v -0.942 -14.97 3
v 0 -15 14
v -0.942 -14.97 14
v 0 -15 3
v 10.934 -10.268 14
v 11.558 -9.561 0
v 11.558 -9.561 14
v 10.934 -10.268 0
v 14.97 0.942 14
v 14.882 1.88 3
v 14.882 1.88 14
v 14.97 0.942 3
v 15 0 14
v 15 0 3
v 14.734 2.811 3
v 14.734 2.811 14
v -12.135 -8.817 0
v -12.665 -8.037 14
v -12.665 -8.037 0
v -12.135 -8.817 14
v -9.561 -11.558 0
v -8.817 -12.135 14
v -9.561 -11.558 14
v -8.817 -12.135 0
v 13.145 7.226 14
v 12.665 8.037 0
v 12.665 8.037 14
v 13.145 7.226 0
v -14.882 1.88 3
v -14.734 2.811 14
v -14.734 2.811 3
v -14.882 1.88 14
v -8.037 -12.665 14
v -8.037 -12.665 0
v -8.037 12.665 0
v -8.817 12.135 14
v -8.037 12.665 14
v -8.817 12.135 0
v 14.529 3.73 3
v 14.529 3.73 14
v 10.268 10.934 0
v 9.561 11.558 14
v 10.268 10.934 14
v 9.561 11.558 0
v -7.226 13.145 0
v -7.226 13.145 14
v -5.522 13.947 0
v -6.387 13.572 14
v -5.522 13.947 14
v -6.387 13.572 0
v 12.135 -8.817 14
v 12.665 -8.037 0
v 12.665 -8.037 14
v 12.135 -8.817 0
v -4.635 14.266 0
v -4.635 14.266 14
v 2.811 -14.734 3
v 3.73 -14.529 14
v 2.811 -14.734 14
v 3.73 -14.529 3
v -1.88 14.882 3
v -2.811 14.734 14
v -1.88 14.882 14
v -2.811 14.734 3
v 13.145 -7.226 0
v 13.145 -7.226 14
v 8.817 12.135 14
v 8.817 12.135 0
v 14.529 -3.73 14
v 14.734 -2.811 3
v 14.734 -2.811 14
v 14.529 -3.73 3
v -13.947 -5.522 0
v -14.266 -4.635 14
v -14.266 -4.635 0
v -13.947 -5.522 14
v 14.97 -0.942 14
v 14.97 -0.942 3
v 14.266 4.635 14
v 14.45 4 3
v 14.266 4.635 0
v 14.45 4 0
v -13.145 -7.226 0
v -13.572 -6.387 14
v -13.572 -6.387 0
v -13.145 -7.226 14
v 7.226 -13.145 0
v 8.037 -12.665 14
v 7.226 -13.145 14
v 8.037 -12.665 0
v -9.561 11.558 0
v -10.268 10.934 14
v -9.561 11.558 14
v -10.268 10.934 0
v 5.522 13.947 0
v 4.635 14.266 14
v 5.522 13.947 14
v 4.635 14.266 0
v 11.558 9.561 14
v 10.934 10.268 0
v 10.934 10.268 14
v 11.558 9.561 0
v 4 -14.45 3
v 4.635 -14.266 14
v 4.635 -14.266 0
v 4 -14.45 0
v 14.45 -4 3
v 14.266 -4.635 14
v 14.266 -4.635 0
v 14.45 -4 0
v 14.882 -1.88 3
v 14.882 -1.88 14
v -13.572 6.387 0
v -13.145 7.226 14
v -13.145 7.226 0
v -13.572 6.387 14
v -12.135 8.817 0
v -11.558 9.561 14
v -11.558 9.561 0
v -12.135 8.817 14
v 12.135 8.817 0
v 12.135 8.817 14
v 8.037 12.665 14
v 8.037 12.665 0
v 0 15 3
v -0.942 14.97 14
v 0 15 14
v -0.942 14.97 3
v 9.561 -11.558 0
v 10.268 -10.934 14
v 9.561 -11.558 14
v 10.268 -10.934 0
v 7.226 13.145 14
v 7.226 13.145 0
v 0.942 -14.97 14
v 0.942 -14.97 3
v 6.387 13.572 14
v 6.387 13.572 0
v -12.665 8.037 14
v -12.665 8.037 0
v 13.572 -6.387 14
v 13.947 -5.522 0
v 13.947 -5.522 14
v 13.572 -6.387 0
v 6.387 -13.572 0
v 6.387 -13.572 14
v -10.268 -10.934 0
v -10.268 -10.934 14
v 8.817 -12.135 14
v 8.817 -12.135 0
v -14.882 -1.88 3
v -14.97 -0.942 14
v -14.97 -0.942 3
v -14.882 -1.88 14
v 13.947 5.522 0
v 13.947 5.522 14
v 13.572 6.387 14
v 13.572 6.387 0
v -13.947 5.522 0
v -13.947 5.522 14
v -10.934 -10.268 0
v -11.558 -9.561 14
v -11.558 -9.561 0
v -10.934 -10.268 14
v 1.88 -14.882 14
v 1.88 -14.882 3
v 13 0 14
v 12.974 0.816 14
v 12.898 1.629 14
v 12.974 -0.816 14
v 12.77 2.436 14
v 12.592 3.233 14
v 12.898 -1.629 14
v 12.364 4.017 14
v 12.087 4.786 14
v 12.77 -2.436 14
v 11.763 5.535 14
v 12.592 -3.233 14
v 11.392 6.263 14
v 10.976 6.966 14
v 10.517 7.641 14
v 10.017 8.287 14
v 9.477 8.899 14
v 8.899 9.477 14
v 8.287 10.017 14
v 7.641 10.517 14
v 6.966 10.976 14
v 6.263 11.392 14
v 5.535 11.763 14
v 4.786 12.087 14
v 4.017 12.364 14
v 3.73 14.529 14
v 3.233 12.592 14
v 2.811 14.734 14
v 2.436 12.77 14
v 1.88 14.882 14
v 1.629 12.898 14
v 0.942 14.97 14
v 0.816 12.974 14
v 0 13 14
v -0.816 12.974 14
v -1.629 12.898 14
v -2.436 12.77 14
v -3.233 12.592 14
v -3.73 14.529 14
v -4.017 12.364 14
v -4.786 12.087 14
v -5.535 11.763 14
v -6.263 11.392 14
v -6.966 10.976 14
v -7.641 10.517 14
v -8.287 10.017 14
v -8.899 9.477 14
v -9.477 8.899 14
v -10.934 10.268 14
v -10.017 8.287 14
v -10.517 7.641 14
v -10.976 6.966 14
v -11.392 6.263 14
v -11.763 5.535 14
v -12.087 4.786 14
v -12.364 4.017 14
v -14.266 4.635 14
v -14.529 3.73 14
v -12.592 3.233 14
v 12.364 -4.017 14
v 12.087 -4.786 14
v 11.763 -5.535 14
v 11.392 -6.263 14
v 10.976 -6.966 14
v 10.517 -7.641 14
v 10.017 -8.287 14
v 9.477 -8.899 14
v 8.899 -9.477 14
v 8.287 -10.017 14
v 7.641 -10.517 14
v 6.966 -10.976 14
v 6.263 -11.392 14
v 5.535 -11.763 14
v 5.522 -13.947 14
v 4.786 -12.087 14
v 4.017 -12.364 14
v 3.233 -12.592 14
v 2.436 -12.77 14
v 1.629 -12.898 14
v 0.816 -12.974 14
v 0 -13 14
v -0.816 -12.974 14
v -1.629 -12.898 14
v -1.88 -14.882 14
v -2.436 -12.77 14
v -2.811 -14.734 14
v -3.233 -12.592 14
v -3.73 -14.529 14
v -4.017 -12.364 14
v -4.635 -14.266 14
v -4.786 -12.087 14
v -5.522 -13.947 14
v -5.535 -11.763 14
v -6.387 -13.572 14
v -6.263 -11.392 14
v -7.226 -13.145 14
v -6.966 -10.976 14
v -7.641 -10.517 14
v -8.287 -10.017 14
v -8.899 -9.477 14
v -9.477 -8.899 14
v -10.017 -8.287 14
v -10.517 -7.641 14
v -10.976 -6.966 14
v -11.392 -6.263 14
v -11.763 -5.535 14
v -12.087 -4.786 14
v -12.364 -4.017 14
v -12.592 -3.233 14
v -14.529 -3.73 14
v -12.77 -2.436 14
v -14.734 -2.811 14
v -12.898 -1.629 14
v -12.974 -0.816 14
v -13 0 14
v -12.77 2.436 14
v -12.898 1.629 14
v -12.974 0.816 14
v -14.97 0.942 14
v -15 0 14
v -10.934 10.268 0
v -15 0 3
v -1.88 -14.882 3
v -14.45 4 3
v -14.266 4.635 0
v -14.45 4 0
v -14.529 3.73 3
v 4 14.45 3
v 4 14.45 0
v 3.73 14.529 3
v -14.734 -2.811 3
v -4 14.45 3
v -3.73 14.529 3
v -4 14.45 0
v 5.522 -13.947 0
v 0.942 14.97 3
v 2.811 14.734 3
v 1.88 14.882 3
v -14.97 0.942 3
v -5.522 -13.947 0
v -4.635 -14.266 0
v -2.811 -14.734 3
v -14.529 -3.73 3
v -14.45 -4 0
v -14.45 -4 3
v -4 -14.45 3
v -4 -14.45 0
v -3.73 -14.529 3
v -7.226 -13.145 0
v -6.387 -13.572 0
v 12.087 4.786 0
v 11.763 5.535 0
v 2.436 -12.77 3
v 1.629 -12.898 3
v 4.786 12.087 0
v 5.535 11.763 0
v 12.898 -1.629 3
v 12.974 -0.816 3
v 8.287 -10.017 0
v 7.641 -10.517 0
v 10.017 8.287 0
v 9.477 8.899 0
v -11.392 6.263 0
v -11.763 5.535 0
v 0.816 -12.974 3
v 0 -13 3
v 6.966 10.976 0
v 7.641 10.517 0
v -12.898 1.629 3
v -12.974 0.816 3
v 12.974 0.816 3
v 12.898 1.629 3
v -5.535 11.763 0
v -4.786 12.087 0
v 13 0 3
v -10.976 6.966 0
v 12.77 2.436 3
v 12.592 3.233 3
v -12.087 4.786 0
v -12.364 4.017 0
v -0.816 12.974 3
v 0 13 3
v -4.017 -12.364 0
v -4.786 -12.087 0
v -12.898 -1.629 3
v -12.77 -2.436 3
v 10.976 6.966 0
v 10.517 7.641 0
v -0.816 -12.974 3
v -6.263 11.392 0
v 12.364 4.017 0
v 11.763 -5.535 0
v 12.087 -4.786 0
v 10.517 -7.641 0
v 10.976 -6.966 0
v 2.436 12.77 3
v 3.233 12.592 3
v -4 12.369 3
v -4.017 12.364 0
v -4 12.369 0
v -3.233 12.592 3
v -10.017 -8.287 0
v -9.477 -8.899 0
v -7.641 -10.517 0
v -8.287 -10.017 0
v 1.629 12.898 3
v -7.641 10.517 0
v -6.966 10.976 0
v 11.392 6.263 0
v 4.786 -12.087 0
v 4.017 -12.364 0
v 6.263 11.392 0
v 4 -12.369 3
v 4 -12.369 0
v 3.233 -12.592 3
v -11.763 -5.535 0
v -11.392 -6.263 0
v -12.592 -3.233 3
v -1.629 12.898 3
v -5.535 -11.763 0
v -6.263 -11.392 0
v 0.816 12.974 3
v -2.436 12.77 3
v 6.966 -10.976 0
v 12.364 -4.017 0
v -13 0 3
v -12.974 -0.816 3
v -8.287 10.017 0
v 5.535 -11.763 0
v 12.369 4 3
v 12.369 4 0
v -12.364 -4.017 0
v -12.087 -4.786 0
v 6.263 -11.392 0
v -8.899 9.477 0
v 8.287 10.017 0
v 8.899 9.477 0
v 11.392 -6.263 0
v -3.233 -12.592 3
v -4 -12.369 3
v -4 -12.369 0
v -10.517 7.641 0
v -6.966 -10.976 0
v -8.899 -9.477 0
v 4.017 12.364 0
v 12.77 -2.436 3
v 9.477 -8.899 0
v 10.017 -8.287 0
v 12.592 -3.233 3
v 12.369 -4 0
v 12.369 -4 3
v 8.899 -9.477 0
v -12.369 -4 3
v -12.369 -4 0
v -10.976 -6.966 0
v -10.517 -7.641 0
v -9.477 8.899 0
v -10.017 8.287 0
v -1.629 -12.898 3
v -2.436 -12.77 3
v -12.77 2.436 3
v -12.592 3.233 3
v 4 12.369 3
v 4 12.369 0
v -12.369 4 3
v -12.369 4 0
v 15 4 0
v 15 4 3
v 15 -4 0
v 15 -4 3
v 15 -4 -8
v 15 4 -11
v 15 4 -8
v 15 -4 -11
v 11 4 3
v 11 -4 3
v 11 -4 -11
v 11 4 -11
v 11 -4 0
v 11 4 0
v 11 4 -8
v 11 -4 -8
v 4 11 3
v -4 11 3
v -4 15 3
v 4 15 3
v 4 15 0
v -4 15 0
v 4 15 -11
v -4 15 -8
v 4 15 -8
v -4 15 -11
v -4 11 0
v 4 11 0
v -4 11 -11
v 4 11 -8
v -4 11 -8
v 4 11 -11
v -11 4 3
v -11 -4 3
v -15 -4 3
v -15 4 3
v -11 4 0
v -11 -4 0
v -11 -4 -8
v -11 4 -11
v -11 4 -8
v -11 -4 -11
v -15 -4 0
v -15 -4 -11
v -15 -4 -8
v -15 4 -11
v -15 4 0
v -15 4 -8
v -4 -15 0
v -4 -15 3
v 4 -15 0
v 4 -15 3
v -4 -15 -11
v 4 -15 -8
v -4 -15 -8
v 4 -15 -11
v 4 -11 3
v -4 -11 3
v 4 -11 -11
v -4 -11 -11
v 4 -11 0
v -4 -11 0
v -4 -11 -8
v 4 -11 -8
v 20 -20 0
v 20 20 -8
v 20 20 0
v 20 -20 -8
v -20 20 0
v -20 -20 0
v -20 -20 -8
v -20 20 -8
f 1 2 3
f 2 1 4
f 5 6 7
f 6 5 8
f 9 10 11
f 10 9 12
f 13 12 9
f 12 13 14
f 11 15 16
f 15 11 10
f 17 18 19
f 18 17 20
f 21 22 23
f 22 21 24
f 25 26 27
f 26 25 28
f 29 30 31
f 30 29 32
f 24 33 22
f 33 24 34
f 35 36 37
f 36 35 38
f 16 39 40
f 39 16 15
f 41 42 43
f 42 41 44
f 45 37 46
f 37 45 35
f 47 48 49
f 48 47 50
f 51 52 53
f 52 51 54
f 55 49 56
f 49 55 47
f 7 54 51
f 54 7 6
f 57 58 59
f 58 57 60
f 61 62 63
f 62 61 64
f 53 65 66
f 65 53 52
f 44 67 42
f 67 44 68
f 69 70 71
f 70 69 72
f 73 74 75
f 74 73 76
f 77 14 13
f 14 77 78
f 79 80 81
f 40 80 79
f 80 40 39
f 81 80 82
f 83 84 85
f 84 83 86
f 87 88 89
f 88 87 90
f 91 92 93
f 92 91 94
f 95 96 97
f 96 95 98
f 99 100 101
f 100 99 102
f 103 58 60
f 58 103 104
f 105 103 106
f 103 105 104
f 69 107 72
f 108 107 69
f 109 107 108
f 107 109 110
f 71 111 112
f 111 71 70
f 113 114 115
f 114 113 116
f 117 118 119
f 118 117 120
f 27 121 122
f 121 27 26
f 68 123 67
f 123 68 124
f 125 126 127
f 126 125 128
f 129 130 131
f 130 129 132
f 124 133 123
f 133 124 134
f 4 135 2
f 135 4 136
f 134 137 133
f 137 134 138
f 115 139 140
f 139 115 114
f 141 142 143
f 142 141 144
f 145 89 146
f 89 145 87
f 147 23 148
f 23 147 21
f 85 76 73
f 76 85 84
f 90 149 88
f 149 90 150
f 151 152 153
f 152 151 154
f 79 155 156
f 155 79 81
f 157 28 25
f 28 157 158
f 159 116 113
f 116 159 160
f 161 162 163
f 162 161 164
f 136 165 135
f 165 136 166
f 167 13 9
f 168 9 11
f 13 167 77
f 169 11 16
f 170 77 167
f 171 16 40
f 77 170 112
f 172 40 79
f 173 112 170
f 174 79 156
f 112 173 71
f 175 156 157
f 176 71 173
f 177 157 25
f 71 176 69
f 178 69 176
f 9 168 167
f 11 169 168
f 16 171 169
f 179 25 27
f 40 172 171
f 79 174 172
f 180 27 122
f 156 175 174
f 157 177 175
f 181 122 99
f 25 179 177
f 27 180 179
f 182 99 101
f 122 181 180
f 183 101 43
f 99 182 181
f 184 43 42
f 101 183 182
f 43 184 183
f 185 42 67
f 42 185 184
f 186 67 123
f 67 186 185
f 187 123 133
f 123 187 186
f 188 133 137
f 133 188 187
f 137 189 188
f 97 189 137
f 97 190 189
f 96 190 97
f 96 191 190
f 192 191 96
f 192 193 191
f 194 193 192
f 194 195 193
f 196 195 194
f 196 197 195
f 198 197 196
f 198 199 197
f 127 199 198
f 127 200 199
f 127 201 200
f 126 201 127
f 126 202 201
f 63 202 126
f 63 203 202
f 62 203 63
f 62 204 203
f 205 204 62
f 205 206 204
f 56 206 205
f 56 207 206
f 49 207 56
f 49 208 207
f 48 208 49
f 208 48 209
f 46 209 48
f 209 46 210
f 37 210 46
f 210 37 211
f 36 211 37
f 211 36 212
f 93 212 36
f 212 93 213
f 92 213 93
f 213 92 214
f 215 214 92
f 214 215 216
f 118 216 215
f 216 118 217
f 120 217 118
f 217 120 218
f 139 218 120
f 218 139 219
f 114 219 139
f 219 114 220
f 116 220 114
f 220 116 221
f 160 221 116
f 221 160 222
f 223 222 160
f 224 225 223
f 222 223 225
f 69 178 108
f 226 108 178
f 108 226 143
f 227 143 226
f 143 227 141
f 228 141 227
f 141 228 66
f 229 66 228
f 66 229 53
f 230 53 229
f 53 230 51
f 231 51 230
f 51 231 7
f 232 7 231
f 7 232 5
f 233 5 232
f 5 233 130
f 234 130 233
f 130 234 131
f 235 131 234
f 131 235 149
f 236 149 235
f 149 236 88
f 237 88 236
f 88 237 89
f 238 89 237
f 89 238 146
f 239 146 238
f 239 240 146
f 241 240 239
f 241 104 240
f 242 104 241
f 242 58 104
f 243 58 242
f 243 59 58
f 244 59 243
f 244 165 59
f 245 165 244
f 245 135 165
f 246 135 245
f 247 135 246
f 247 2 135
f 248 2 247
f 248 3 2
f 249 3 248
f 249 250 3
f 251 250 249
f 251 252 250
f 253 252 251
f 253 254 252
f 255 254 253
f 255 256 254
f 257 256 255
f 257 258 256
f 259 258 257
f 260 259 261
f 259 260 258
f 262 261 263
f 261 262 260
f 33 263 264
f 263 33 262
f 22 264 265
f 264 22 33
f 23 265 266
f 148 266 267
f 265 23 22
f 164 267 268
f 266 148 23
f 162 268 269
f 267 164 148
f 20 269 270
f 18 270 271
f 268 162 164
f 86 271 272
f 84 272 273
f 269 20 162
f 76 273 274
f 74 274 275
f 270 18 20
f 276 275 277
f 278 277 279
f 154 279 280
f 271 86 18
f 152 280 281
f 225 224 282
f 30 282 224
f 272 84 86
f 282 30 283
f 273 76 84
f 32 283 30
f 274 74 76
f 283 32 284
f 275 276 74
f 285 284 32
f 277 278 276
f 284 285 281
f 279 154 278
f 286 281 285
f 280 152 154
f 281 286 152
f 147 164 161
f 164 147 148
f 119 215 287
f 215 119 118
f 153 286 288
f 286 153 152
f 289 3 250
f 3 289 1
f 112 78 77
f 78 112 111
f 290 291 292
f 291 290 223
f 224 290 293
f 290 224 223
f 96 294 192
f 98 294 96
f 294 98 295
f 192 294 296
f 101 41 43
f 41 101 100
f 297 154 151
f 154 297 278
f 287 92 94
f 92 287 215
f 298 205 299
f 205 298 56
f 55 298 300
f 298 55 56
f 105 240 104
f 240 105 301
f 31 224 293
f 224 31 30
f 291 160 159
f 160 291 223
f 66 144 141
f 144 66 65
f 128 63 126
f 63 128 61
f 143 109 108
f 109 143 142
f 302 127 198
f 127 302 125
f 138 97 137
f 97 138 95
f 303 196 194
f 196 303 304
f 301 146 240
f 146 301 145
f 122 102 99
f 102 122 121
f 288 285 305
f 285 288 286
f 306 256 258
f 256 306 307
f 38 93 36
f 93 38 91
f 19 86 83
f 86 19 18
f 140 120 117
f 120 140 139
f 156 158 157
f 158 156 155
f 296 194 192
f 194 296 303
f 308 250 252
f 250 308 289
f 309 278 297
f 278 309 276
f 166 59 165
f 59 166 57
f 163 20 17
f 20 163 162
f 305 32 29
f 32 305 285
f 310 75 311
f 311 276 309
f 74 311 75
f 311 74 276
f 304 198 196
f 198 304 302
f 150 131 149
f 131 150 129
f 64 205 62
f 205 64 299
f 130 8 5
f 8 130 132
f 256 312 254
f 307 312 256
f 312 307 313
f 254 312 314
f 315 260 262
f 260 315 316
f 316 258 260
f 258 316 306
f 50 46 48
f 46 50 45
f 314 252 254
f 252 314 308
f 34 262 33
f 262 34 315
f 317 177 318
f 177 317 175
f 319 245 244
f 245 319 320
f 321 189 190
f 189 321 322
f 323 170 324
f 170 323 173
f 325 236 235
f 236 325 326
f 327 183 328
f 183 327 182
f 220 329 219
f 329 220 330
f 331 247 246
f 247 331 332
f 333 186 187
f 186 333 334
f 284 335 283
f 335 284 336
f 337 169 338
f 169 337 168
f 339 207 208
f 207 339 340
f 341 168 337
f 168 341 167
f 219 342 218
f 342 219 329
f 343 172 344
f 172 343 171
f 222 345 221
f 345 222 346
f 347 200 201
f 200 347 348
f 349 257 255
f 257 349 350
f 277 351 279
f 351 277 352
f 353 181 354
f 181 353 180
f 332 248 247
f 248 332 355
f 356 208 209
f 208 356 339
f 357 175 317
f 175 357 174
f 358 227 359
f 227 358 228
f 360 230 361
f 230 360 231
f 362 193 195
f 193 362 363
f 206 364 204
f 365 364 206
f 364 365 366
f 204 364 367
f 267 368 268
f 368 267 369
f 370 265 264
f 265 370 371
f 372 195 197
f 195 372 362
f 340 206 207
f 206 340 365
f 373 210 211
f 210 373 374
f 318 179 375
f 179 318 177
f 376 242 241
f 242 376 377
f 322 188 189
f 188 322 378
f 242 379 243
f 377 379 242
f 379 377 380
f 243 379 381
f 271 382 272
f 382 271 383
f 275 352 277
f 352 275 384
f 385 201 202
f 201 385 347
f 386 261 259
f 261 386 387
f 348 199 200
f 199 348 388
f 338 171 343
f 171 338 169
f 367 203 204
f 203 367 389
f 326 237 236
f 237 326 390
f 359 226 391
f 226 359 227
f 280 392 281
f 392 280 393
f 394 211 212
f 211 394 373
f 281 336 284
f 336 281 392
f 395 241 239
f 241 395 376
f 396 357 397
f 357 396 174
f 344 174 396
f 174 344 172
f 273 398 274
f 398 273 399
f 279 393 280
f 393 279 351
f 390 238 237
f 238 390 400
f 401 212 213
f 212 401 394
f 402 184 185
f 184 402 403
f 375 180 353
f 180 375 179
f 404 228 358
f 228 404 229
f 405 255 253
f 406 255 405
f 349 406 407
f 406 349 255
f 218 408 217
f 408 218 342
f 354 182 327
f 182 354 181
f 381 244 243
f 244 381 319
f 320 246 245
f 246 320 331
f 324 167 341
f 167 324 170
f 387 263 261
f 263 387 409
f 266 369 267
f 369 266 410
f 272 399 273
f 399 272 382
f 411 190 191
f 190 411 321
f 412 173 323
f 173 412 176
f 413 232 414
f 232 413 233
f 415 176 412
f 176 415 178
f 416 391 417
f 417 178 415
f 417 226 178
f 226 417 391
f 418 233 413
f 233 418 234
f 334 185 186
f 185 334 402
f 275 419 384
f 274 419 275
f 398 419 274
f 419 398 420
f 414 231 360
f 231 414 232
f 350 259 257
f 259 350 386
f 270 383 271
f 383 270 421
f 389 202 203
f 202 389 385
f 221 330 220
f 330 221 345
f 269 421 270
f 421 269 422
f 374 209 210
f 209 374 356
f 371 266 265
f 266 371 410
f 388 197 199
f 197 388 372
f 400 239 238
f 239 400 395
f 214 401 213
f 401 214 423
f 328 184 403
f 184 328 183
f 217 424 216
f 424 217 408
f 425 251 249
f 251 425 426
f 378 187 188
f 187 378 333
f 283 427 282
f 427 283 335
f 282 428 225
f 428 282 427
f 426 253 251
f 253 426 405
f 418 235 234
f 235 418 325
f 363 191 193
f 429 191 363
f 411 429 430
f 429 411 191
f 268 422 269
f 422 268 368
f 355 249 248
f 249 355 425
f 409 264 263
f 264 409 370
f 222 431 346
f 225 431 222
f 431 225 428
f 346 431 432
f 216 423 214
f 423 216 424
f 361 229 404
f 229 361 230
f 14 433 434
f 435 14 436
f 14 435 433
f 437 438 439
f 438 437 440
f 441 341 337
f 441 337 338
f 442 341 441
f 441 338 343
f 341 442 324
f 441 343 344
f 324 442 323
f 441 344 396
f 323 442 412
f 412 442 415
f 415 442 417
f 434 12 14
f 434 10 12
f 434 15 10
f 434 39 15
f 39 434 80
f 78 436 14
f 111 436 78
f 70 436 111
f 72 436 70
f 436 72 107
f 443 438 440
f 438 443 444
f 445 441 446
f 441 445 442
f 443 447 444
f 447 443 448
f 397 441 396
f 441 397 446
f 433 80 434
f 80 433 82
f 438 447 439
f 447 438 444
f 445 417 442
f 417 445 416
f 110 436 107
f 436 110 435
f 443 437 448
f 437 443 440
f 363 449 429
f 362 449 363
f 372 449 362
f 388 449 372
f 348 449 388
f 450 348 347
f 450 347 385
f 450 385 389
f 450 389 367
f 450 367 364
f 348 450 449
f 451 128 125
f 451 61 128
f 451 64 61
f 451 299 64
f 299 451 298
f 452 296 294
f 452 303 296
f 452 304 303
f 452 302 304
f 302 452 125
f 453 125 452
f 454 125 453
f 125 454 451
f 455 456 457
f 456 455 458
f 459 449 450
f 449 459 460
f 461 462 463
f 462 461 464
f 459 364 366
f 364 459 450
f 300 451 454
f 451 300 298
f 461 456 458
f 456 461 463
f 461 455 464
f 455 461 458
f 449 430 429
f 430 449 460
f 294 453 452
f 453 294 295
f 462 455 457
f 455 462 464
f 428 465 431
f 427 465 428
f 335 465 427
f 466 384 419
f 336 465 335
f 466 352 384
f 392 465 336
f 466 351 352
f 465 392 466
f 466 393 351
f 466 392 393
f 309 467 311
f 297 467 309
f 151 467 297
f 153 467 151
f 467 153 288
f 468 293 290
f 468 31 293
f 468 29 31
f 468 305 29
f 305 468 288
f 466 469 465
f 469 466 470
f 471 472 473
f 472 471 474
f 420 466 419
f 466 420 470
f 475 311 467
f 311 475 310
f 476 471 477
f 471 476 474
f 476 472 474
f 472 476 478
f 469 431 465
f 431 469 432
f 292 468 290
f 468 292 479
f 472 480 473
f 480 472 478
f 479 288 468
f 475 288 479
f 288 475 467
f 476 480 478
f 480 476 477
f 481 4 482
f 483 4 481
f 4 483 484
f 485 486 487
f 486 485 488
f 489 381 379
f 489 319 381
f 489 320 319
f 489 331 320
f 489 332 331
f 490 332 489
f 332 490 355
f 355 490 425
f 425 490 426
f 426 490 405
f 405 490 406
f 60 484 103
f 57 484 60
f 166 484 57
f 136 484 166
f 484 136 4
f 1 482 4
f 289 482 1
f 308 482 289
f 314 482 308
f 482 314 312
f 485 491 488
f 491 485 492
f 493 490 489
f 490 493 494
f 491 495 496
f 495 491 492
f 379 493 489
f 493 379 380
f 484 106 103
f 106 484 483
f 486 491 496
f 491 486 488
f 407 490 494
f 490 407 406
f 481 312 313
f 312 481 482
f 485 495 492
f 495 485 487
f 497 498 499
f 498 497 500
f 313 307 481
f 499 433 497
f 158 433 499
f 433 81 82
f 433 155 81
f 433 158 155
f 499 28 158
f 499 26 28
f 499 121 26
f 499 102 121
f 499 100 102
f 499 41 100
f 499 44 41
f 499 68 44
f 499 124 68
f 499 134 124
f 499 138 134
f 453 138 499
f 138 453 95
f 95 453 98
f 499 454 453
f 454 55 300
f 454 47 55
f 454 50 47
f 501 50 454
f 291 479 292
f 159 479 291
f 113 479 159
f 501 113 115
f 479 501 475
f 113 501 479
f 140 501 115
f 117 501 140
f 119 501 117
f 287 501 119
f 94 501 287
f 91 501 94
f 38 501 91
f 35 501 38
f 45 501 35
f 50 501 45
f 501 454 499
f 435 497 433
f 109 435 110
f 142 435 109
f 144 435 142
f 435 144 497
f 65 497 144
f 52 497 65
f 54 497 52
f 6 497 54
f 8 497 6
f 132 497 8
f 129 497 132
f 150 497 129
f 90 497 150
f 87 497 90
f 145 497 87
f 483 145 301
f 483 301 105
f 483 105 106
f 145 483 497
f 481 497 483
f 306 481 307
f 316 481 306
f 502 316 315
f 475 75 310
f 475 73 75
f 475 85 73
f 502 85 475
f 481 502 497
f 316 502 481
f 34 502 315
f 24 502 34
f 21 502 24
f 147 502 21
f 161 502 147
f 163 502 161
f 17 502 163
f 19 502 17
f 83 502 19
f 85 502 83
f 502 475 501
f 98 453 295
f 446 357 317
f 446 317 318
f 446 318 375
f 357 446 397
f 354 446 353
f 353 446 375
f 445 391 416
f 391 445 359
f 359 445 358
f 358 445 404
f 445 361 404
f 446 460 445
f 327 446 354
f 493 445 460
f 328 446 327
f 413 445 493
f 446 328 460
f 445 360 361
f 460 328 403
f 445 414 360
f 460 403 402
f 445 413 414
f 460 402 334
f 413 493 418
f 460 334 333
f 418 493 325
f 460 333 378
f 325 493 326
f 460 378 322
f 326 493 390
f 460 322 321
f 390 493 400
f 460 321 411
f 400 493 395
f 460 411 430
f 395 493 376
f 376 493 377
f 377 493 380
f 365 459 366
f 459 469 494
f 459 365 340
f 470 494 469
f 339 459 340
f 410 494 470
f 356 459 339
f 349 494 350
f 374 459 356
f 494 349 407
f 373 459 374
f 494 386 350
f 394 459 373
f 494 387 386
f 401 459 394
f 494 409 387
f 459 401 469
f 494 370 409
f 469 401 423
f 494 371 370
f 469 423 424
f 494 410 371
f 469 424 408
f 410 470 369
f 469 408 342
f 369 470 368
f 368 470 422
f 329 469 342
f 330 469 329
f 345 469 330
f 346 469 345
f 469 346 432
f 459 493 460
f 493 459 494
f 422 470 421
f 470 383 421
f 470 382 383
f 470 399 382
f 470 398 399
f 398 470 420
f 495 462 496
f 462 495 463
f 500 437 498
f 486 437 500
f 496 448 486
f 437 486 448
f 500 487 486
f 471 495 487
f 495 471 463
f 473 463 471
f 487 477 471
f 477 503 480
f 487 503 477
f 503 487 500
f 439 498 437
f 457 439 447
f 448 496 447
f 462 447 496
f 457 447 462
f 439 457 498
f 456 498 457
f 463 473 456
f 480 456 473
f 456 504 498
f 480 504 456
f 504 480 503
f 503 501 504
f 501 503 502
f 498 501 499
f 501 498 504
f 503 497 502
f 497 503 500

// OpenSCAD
// Parameters for the base block
base_length = 40;  // Length of the rectangular base
base_width = 40;   // Width of the rectangular base
base_height = 8;   // Height of the rectangular base

// Parameters for the cylindrical extension
cylinder_diameter = 30;  // Diameter of the cylinder
cylinder_height = 20;    // Height of the cylinder
cylinder_wall_thickness = 2;  // Thickness of the cylinder wall

// Parameters for the vertical support structures
support_width = 8;       // Width of the vertical supports
support_thickness = 4;   // Thickness of the vertical supports
support_height = base_height / 2 + cylinder_height / 2; // Height of the supports

// Base block
module base_block() {
    cube([base_length, base_width, base_height], center = true);
}

// Cylindrical extension
module cylindrical_extension() {
    difference() {
        // Outer cylinder with smooth surface
        cylinder(h = cylinder_height, d = cylinder_diameter, center = true, $fn = 100); // Increased $fn for smoothness
        // Inner hollow cylinder
        cylinder(h = cylinder_height, d = cylinder_diameter - 2 * cylinder_wall_thickness, center = true, $fn = 100);
    }
}

// Vertical support structures
module vertical_supports() {
    for (angle = [0, 90, 180, 270]) {
        rotate([0, 0, angle])
        translate([cylinder_diameter / 2 - support_thickness / 2, 0, -base_height / 2])
        cube([support_thickness, support_width, support_height], center = true);
    }
}

// Full model
module flexible_coupling() {
    // Base block
    translate([0, 0, -base_height / 2])
        base_block();
    // Cylindrical extension
    translate([0, 0, base_height / 2])
        cylindrical_extension();
    // Vertical support structures
    vertical_supports();
}

// Render the model
flexible_coupling();
